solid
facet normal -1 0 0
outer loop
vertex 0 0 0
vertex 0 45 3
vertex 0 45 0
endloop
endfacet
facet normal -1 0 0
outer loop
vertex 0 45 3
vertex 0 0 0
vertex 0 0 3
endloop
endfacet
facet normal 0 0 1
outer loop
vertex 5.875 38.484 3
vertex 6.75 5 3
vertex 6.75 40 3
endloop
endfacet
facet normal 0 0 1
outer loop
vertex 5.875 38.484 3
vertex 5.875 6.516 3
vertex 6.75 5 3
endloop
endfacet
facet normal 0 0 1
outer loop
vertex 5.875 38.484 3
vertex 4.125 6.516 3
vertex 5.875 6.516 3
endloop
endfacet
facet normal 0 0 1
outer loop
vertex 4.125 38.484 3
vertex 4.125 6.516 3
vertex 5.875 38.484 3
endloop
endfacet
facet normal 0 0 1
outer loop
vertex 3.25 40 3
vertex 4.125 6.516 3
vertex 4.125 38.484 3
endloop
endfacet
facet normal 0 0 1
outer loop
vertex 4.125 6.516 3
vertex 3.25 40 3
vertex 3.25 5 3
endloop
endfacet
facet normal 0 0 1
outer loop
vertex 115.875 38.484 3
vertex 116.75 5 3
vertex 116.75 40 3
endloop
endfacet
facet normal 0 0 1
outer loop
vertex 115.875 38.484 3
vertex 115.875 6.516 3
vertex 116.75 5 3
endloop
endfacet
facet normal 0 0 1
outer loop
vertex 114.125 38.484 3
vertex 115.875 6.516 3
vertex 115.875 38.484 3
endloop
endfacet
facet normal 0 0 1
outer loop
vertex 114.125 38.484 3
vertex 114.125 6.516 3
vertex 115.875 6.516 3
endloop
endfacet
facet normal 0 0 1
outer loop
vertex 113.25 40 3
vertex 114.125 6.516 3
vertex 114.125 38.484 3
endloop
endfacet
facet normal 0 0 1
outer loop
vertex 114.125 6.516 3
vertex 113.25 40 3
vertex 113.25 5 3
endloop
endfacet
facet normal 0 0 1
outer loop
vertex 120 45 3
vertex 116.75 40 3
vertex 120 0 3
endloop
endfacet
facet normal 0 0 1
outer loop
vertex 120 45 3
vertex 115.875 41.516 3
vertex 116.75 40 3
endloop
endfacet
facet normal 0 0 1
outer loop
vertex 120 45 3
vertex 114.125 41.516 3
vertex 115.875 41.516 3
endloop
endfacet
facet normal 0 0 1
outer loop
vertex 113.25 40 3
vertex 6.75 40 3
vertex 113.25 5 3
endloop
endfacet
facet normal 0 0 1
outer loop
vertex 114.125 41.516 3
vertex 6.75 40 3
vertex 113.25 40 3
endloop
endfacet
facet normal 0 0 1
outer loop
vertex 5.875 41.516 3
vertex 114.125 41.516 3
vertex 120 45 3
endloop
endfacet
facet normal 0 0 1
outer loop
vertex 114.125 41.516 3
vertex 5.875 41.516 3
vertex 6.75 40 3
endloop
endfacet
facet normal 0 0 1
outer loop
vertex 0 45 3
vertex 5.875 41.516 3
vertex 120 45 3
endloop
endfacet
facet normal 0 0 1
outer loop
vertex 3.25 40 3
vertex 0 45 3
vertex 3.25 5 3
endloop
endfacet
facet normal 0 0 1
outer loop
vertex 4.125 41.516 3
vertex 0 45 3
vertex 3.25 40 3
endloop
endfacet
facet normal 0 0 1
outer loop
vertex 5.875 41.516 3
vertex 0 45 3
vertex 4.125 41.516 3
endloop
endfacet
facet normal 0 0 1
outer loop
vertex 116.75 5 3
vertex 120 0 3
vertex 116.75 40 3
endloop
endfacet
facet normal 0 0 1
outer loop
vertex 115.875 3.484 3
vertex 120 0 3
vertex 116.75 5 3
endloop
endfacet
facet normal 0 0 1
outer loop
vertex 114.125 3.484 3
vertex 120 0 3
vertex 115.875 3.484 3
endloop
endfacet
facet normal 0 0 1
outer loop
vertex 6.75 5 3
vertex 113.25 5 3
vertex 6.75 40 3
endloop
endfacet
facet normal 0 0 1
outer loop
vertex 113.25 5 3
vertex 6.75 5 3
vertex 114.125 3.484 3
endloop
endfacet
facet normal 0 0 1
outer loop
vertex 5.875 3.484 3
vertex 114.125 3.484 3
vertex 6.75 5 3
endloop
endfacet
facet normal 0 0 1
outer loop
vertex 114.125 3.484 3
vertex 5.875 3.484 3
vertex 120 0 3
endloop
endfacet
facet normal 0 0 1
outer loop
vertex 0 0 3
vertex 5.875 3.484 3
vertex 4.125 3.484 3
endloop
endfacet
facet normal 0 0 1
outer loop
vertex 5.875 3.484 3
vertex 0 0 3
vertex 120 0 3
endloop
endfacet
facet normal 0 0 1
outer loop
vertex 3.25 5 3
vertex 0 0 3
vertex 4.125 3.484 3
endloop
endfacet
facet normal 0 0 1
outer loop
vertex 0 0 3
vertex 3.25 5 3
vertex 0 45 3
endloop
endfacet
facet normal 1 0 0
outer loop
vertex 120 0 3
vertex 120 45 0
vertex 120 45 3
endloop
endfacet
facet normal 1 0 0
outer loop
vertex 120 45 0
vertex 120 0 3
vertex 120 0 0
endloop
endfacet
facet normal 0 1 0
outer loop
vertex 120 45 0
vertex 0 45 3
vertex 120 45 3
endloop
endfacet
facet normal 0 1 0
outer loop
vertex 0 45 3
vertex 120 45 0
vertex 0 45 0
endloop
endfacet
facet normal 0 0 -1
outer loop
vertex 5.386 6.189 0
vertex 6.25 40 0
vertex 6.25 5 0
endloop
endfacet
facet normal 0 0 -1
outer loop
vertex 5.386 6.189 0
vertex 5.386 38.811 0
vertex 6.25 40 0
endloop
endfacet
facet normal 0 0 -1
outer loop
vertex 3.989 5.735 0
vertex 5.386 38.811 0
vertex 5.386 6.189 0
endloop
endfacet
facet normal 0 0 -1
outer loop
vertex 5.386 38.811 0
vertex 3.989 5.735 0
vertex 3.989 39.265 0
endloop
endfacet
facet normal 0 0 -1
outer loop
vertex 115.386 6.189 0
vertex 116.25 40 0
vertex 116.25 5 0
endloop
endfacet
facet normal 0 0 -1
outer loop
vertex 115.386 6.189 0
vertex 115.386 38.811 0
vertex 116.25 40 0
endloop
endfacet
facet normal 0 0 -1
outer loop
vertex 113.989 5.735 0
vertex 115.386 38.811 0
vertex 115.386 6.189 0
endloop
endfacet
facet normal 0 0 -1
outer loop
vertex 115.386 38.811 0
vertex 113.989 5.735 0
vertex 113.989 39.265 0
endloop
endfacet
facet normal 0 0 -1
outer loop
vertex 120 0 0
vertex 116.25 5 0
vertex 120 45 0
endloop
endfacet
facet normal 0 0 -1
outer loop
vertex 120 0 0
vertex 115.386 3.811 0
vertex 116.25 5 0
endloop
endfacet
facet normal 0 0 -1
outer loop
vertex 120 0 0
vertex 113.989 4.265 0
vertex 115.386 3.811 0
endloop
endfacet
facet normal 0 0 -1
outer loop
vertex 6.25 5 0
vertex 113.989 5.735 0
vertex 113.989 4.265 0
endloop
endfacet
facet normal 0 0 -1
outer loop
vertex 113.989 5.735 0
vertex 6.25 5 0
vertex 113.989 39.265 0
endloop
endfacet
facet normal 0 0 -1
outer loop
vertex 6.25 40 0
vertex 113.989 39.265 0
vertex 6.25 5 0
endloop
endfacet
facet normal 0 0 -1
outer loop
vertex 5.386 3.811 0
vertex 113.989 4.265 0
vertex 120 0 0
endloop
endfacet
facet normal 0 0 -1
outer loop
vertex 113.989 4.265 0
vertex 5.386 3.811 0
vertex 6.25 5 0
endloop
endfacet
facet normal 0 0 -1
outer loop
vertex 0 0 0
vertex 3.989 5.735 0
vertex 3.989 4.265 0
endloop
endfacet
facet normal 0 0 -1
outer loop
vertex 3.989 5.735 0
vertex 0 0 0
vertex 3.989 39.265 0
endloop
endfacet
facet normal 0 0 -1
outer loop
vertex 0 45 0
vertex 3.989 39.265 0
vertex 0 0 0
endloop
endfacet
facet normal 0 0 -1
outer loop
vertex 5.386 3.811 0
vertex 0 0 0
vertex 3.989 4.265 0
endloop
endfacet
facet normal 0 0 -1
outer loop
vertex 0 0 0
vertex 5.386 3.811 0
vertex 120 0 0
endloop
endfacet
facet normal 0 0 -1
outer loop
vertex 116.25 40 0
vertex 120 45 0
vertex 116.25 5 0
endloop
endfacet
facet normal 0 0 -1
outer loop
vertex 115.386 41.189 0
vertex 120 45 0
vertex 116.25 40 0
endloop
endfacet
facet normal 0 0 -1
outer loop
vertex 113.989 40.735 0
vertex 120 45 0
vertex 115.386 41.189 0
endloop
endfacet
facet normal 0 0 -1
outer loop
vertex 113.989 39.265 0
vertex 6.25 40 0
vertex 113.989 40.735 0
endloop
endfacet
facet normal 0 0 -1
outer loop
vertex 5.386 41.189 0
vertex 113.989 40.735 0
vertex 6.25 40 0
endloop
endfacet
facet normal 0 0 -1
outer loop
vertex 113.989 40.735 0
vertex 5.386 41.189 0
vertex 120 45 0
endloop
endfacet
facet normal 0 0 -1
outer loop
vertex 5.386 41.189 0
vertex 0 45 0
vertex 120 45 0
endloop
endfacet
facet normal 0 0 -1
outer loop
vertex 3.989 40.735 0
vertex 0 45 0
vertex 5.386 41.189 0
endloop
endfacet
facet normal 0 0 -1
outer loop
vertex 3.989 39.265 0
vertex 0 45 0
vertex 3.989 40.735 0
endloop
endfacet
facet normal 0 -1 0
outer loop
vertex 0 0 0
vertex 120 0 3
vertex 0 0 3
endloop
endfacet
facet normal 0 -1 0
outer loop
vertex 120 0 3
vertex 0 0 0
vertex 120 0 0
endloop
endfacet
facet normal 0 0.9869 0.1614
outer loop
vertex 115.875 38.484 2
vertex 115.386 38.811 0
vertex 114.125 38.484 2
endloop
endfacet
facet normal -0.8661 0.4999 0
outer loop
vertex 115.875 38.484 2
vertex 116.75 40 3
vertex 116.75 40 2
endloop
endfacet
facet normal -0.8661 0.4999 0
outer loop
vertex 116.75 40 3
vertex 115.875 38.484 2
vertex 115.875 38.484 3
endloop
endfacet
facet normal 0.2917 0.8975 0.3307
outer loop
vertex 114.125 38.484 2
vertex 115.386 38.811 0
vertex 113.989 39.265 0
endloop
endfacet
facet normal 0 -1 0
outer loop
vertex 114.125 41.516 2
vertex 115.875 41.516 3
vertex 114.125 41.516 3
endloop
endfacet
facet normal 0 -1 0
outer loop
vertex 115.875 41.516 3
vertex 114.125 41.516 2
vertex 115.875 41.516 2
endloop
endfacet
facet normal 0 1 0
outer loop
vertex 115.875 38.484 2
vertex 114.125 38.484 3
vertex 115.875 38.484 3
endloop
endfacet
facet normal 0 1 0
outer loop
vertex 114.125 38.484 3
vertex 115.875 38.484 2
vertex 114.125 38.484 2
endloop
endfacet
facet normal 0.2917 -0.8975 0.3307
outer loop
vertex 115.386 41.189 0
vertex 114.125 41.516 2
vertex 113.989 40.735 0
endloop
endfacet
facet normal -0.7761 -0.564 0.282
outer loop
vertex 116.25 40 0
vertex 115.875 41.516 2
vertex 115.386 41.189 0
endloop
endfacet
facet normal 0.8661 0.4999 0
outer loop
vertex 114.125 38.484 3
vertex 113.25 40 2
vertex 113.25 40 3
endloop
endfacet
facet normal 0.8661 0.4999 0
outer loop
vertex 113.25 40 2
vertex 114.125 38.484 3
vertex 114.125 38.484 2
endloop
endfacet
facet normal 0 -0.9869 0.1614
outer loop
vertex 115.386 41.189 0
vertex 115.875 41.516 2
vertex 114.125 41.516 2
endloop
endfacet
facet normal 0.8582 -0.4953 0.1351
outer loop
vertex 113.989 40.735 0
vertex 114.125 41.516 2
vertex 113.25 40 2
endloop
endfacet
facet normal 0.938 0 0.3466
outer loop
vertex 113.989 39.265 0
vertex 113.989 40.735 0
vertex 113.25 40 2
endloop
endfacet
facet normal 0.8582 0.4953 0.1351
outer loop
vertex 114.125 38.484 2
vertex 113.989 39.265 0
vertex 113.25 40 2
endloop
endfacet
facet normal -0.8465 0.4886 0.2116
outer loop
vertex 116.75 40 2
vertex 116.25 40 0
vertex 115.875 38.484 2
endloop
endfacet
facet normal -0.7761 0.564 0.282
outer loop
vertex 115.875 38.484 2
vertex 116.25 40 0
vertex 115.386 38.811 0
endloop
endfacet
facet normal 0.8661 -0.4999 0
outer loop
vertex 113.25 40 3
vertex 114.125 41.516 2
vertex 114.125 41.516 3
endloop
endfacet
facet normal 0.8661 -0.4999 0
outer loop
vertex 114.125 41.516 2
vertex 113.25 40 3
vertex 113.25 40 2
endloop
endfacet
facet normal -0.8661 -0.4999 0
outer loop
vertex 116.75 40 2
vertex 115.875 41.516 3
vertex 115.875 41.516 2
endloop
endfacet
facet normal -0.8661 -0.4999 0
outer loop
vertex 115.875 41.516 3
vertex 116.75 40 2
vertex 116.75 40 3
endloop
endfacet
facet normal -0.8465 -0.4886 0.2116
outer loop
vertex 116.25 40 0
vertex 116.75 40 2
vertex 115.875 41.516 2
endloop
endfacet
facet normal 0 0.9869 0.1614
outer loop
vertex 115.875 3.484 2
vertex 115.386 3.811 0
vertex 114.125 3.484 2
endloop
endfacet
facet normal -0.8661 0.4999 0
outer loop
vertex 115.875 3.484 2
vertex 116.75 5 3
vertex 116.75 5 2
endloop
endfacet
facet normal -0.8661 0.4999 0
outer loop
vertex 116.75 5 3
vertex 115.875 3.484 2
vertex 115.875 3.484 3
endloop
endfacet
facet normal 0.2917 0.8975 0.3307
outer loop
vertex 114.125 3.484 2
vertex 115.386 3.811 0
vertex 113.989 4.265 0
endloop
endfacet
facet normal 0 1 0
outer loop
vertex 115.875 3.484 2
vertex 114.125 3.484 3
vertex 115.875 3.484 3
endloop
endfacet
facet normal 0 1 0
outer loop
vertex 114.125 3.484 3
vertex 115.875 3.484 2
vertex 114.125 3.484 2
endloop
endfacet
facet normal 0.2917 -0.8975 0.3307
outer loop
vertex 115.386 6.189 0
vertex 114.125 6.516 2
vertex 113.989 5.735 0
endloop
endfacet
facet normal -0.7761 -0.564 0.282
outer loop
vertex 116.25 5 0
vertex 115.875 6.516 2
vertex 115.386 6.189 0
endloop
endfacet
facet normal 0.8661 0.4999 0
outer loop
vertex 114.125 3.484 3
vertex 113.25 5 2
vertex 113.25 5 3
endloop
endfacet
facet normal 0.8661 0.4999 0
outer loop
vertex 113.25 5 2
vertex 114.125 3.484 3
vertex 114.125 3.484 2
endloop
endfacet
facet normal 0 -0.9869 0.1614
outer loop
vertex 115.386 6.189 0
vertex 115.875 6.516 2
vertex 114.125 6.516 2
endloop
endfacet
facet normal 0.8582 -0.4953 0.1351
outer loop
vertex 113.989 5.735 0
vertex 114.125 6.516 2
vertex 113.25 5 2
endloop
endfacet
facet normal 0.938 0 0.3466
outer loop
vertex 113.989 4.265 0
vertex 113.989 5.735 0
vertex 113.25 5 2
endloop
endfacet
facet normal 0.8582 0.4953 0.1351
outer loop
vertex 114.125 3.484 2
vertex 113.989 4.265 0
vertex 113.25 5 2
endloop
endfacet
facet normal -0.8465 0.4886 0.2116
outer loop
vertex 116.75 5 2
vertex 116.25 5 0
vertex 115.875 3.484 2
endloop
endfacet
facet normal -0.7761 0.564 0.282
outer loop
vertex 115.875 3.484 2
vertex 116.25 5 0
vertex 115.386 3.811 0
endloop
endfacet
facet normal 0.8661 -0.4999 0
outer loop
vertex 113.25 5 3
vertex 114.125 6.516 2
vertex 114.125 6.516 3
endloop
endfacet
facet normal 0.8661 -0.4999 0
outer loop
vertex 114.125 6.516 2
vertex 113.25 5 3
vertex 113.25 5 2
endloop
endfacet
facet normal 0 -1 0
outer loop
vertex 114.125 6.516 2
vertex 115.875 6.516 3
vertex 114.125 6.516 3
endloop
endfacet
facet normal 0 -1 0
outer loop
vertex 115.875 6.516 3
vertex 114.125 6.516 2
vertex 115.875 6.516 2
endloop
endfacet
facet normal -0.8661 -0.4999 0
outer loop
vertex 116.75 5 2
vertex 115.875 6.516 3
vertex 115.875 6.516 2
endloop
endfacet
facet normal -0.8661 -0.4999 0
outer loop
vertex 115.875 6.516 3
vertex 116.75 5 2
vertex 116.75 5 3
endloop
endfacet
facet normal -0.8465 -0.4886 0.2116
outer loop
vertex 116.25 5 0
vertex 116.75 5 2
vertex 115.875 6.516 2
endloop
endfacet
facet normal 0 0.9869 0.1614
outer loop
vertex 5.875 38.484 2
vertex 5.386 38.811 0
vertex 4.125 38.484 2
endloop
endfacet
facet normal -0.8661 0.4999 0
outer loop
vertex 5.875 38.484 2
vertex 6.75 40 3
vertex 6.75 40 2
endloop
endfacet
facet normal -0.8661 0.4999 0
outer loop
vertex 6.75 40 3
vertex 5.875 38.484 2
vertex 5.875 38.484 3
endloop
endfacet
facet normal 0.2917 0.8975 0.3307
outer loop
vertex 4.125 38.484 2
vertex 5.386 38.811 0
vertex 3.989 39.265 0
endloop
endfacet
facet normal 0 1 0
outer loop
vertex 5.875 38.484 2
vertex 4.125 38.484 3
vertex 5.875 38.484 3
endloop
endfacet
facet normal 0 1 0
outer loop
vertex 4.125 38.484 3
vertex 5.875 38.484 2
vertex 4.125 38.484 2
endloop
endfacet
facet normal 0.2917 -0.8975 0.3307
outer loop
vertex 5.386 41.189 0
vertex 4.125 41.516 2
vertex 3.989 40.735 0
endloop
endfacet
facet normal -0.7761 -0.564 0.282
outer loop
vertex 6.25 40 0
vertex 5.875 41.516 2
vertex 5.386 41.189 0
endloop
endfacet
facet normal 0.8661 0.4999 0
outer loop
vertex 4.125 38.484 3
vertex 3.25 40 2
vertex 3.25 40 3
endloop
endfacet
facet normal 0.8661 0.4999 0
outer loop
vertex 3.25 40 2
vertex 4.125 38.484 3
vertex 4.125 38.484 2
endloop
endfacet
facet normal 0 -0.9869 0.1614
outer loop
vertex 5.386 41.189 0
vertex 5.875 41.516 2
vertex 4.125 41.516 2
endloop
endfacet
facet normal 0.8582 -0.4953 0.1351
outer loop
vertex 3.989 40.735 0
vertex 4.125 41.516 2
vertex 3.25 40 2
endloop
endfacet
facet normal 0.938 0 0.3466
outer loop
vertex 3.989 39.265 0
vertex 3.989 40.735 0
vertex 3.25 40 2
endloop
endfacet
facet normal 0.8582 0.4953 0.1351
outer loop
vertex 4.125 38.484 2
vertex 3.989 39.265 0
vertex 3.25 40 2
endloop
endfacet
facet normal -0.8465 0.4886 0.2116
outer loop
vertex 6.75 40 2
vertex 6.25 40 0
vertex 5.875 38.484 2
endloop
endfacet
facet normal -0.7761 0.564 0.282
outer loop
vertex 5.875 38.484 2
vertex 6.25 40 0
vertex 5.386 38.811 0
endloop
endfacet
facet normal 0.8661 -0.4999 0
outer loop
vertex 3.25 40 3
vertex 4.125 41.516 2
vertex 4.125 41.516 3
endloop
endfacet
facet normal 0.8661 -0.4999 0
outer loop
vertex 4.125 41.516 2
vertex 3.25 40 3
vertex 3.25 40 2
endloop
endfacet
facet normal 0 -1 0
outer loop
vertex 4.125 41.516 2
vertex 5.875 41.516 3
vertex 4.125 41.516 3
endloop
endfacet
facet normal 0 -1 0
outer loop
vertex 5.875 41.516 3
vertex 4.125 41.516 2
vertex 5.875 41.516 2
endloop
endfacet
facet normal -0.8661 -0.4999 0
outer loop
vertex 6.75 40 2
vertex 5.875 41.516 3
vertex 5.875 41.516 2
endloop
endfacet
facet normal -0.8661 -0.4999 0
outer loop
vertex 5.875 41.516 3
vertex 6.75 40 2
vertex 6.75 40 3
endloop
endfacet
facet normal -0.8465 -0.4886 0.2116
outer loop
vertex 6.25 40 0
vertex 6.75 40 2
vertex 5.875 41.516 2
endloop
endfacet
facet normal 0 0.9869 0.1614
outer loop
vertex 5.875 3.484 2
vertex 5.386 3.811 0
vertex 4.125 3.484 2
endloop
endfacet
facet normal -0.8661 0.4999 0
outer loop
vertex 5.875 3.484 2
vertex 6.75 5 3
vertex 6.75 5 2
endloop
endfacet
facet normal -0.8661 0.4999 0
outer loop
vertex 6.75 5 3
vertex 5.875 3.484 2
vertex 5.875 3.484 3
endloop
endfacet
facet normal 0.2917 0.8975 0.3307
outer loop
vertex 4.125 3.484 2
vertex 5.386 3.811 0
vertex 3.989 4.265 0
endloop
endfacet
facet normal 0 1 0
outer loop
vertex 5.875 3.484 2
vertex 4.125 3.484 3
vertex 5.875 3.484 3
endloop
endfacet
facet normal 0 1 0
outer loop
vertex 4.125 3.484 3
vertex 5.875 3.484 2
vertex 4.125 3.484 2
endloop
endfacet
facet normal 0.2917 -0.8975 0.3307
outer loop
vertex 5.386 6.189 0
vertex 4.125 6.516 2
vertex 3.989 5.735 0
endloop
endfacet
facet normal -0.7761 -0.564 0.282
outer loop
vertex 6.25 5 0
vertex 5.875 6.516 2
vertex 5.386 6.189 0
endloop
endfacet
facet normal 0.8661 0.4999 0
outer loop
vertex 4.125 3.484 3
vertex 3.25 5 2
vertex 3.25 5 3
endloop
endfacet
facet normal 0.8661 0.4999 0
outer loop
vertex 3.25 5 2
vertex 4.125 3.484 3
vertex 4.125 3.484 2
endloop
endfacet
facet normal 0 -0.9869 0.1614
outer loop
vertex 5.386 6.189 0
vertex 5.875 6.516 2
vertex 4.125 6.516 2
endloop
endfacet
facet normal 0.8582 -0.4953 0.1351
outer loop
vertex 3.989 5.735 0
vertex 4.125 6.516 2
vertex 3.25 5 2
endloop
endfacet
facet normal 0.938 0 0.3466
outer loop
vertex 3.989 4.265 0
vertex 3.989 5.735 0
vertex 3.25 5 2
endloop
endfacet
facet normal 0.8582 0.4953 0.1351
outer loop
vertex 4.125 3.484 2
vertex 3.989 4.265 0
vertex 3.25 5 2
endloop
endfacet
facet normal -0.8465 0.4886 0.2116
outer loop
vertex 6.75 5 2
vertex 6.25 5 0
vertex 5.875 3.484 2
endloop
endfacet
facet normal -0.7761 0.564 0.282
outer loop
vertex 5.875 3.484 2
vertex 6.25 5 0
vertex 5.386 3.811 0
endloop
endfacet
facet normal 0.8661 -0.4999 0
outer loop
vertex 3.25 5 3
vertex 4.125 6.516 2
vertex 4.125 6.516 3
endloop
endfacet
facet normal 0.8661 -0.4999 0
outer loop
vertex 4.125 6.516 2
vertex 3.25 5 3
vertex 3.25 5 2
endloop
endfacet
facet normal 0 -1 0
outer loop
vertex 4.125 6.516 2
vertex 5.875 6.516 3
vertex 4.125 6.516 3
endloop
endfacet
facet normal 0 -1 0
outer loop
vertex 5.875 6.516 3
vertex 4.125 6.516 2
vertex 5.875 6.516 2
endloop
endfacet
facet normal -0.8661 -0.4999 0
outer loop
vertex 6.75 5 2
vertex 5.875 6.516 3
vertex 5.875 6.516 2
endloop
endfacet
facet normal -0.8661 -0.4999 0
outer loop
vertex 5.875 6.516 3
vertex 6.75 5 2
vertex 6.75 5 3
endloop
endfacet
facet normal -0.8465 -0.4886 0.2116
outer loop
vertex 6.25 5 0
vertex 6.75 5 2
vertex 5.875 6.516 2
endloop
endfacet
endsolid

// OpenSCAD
cover_thickness = 3;

module screw_hole() {
    hull() {
        translate([0,0,0]) cylinder(1, d=2.5);
        translate([0,0,cover_thickness-1]) cylinder(1, d=3.5);
    }
}

 difference() {
    cube([120, 45, cover_thickness]);

    translate([115, 40, 0]) screw_hole();
    translate([115, 5, 0]) screw_hole();
    translate([5, 40, 0]) screw_hole();
    translate([5, 5, 0]) screw_hole();
}
